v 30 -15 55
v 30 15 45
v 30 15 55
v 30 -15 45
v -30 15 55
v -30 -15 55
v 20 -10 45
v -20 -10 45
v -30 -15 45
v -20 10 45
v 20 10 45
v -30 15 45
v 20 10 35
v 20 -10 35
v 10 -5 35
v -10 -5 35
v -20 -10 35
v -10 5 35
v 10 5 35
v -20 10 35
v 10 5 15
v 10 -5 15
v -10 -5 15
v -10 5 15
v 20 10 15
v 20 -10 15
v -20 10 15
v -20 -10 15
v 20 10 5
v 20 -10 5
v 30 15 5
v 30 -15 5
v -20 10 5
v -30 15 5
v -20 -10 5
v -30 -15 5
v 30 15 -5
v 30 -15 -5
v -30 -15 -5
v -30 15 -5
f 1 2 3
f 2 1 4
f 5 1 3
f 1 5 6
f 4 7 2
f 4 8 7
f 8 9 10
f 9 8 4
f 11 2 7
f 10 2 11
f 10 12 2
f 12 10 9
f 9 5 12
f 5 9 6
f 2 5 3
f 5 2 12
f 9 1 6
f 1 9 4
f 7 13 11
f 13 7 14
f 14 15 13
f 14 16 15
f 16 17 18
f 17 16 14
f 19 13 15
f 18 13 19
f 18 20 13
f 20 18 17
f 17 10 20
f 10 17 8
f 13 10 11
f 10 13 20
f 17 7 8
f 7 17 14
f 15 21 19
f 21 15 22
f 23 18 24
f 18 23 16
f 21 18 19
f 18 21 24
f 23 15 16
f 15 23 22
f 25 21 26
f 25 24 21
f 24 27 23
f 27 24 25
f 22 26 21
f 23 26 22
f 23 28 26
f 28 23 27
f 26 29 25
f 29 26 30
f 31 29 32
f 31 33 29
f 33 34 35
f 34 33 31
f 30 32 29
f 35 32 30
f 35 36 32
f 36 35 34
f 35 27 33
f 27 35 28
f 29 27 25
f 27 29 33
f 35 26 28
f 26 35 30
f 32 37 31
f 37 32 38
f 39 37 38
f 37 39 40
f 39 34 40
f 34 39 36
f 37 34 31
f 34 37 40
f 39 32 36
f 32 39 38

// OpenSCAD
// Define dimensions for the blocks
large_block_size = [60, 30, 10];  // [length, width, height]
medium_block_size = [40, 20, 10];
small_block_size = [20, 10, 10];

// Define positions for each layer
layer_1_position = [0, 0, 50];  // Topmost layer
layer_2_position = [0, 0, 40];
layer_3_position = [0, 0, 30];
layer_4_position = [0, 0, 20];
layer_5_position = [0, 0, 10];
layer_6_position = [0, 0, 0];   // Bottommost layer

// Create the blocks and position them according to the graph_dict
module large_rectangular_block() {
    cube(large_block_size, center = true);
}

module medium_rectangular_block() {
    cube(medium_block_size, center = true);
}

module small_rectangular_block() {
    cube(small_block_size, center = true);
}

// Assemble the model
translate(layer_1_position) large_rectangular_block();
translate(layer_2_position) medium_rectangular_block();
translate(layer_3_position) small_rectangular_block();
translate(layer_4_position) small_rectangular_block();
translate(layer_5_position) medium_rectangular_block();
translate(layer_6_position) large_rectangular_block();
